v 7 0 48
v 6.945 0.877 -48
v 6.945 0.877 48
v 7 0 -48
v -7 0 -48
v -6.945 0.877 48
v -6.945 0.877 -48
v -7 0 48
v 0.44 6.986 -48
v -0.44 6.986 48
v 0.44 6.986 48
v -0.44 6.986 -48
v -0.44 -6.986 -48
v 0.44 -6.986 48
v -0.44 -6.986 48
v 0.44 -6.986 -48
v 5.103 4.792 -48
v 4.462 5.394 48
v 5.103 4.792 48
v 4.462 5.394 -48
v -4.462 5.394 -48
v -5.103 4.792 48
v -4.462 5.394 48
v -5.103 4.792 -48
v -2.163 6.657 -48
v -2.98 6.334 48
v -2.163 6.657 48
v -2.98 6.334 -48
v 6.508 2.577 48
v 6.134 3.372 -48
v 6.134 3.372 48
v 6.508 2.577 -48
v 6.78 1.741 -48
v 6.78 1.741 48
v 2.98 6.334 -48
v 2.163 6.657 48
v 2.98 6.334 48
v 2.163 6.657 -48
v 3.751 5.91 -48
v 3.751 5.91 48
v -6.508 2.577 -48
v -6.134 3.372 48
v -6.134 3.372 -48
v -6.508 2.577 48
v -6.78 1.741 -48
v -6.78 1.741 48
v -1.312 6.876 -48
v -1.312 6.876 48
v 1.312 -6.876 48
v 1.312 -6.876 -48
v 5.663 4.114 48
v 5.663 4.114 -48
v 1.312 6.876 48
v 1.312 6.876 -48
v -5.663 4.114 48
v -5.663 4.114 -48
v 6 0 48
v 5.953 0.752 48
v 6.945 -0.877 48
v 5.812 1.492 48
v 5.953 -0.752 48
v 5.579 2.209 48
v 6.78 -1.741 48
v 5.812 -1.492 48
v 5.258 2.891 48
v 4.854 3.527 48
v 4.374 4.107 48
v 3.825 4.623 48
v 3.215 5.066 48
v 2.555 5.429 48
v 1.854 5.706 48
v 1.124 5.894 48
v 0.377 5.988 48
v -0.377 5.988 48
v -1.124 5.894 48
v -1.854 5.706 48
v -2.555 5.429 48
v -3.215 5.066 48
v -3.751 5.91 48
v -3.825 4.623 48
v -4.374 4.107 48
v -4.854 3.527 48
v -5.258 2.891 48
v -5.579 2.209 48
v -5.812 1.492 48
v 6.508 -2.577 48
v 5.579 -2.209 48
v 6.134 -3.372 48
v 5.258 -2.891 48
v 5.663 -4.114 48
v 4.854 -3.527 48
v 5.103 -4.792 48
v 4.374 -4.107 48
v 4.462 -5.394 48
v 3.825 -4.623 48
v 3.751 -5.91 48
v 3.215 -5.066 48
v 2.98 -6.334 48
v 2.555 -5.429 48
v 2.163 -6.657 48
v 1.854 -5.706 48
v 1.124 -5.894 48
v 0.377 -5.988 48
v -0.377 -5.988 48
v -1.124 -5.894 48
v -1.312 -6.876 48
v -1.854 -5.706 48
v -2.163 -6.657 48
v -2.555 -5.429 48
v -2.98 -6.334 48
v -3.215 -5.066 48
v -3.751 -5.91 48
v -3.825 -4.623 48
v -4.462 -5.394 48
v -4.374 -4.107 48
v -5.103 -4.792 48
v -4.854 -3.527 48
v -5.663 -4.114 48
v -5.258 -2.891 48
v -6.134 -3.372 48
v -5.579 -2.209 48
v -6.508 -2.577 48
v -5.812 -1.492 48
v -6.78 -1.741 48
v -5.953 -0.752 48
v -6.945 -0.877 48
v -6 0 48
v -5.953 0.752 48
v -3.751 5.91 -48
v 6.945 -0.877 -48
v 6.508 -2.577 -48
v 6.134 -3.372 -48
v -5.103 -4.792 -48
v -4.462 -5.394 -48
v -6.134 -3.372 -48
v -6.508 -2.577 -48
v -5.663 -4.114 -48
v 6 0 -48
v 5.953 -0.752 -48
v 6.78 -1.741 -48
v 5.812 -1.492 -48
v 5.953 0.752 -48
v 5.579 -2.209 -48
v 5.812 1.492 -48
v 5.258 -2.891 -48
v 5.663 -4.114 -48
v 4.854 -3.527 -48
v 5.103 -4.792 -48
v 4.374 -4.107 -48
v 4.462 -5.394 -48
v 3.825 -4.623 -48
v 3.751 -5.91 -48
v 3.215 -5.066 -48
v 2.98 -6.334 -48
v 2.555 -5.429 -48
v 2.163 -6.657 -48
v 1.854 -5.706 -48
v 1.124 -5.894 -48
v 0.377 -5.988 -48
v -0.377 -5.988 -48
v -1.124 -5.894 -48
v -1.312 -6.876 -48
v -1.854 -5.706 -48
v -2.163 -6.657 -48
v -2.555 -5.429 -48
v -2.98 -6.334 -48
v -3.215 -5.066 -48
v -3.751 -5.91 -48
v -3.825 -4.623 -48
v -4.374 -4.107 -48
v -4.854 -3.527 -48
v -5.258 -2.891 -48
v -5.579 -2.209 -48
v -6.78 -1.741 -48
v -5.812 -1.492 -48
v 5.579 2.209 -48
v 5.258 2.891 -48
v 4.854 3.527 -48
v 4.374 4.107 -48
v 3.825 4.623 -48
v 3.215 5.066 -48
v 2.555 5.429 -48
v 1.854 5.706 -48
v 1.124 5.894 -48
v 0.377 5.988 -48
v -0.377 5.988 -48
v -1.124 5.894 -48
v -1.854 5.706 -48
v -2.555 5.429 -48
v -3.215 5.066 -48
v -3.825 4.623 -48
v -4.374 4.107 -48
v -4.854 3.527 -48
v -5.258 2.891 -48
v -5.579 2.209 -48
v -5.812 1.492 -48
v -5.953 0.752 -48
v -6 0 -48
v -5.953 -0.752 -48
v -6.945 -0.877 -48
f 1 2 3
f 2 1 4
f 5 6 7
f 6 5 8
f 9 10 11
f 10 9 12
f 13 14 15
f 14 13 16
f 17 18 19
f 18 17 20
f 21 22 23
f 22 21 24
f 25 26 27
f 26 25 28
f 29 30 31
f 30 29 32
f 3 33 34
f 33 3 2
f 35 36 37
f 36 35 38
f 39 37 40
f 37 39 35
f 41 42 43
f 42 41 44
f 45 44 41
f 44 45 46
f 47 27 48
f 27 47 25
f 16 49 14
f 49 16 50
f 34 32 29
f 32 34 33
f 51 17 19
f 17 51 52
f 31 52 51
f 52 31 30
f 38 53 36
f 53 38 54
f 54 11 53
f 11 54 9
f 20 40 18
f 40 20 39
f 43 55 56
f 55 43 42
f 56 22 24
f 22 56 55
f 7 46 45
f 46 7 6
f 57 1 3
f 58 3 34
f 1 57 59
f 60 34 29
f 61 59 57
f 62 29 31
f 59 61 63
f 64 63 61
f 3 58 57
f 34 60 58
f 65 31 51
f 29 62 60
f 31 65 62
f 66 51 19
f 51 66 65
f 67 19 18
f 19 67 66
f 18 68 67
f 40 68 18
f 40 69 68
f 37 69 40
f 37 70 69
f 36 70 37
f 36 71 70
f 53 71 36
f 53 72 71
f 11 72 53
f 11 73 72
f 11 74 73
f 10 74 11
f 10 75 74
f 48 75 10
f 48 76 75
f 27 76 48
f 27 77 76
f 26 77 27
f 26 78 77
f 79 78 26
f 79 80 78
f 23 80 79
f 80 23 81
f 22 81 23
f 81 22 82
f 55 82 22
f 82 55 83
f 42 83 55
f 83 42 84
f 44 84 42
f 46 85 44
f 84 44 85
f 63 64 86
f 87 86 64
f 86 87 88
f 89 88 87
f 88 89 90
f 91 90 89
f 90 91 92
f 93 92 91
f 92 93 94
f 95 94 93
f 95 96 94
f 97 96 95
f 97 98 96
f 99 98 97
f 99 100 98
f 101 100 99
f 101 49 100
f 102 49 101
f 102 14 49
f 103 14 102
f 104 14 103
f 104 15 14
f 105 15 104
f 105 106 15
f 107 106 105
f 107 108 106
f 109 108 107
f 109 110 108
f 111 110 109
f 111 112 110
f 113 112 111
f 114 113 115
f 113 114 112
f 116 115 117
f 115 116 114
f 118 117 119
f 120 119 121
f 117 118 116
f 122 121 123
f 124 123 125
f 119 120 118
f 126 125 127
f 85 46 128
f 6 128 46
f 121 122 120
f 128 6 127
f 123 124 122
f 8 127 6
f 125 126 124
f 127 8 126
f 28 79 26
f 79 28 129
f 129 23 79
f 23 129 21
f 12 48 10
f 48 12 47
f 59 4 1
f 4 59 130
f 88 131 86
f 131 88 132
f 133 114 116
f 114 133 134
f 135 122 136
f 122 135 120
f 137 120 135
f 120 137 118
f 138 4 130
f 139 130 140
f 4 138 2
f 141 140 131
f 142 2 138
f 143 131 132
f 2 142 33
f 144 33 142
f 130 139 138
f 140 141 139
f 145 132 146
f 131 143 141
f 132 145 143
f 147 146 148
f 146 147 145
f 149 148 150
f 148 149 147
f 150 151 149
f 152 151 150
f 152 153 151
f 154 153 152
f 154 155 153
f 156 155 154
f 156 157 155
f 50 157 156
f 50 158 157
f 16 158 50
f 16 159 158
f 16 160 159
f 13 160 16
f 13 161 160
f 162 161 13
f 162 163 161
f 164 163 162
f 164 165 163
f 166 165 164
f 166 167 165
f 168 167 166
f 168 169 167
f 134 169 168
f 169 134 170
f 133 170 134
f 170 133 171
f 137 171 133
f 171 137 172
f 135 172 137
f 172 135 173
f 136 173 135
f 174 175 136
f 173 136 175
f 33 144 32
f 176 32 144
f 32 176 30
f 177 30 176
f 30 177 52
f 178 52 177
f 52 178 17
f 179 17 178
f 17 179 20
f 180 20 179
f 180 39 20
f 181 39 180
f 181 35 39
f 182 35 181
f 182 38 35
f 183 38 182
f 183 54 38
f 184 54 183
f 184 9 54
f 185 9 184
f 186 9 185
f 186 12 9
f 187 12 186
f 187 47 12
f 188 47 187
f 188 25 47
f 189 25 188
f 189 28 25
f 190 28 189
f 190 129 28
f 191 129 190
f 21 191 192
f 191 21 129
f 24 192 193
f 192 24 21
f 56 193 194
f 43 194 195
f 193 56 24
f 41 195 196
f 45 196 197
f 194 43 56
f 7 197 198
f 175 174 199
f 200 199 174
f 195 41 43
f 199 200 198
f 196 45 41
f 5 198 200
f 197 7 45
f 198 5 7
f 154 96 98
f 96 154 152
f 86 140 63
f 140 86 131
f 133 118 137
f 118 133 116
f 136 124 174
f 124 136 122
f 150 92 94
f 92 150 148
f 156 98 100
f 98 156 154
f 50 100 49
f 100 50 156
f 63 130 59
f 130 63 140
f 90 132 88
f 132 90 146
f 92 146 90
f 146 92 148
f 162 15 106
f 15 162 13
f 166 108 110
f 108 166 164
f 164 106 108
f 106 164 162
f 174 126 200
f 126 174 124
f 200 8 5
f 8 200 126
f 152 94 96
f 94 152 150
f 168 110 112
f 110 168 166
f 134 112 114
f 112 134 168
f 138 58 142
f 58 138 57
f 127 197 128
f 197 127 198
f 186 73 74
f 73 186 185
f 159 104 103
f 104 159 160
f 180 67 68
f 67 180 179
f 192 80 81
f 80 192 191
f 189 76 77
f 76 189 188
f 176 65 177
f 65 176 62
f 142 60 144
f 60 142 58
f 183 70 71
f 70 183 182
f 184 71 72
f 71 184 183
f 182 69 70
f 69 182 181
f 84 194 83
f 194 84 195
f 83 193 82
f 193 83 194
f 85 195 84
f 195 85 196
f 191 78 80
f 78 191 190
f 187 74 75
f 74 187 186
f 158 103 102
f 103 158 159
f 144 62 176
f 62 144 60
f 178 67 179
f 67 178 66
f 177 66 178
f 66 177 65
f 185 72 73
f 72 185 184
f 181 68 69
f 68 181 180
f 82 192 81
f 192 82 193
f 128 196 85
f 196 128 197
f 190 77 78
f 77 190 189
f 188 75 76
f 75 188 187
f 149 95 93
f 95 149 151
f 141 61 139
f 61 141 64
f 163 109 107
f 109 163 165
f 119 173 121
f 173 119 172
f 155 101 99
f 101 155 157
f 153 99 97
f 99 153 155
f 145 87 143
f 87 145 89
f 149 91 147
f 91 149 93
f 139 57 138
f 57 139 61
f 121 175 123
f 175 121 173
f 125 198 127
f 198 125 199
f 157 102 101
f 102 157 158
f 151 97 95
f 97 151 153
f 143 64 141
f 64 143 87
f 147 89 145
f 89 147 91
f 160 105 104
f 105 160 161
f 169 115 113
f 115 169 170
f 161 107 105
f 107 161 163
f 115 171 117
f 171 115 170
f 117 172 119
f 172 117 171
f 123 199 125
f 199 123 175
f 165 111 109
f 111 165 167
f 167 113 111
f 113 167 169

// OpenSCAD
$fn = 50;


difference() {
	union() {
		translate(v = [0, 0, -48.0000000000]) {
			cylinder(h = 96, r = 7.0000000000);
		}
	}
	union() {
		translate(v = [0, 0, -100.0000000000]) {
			cylinder(h = 200, r = 6);
		}
	}
}
